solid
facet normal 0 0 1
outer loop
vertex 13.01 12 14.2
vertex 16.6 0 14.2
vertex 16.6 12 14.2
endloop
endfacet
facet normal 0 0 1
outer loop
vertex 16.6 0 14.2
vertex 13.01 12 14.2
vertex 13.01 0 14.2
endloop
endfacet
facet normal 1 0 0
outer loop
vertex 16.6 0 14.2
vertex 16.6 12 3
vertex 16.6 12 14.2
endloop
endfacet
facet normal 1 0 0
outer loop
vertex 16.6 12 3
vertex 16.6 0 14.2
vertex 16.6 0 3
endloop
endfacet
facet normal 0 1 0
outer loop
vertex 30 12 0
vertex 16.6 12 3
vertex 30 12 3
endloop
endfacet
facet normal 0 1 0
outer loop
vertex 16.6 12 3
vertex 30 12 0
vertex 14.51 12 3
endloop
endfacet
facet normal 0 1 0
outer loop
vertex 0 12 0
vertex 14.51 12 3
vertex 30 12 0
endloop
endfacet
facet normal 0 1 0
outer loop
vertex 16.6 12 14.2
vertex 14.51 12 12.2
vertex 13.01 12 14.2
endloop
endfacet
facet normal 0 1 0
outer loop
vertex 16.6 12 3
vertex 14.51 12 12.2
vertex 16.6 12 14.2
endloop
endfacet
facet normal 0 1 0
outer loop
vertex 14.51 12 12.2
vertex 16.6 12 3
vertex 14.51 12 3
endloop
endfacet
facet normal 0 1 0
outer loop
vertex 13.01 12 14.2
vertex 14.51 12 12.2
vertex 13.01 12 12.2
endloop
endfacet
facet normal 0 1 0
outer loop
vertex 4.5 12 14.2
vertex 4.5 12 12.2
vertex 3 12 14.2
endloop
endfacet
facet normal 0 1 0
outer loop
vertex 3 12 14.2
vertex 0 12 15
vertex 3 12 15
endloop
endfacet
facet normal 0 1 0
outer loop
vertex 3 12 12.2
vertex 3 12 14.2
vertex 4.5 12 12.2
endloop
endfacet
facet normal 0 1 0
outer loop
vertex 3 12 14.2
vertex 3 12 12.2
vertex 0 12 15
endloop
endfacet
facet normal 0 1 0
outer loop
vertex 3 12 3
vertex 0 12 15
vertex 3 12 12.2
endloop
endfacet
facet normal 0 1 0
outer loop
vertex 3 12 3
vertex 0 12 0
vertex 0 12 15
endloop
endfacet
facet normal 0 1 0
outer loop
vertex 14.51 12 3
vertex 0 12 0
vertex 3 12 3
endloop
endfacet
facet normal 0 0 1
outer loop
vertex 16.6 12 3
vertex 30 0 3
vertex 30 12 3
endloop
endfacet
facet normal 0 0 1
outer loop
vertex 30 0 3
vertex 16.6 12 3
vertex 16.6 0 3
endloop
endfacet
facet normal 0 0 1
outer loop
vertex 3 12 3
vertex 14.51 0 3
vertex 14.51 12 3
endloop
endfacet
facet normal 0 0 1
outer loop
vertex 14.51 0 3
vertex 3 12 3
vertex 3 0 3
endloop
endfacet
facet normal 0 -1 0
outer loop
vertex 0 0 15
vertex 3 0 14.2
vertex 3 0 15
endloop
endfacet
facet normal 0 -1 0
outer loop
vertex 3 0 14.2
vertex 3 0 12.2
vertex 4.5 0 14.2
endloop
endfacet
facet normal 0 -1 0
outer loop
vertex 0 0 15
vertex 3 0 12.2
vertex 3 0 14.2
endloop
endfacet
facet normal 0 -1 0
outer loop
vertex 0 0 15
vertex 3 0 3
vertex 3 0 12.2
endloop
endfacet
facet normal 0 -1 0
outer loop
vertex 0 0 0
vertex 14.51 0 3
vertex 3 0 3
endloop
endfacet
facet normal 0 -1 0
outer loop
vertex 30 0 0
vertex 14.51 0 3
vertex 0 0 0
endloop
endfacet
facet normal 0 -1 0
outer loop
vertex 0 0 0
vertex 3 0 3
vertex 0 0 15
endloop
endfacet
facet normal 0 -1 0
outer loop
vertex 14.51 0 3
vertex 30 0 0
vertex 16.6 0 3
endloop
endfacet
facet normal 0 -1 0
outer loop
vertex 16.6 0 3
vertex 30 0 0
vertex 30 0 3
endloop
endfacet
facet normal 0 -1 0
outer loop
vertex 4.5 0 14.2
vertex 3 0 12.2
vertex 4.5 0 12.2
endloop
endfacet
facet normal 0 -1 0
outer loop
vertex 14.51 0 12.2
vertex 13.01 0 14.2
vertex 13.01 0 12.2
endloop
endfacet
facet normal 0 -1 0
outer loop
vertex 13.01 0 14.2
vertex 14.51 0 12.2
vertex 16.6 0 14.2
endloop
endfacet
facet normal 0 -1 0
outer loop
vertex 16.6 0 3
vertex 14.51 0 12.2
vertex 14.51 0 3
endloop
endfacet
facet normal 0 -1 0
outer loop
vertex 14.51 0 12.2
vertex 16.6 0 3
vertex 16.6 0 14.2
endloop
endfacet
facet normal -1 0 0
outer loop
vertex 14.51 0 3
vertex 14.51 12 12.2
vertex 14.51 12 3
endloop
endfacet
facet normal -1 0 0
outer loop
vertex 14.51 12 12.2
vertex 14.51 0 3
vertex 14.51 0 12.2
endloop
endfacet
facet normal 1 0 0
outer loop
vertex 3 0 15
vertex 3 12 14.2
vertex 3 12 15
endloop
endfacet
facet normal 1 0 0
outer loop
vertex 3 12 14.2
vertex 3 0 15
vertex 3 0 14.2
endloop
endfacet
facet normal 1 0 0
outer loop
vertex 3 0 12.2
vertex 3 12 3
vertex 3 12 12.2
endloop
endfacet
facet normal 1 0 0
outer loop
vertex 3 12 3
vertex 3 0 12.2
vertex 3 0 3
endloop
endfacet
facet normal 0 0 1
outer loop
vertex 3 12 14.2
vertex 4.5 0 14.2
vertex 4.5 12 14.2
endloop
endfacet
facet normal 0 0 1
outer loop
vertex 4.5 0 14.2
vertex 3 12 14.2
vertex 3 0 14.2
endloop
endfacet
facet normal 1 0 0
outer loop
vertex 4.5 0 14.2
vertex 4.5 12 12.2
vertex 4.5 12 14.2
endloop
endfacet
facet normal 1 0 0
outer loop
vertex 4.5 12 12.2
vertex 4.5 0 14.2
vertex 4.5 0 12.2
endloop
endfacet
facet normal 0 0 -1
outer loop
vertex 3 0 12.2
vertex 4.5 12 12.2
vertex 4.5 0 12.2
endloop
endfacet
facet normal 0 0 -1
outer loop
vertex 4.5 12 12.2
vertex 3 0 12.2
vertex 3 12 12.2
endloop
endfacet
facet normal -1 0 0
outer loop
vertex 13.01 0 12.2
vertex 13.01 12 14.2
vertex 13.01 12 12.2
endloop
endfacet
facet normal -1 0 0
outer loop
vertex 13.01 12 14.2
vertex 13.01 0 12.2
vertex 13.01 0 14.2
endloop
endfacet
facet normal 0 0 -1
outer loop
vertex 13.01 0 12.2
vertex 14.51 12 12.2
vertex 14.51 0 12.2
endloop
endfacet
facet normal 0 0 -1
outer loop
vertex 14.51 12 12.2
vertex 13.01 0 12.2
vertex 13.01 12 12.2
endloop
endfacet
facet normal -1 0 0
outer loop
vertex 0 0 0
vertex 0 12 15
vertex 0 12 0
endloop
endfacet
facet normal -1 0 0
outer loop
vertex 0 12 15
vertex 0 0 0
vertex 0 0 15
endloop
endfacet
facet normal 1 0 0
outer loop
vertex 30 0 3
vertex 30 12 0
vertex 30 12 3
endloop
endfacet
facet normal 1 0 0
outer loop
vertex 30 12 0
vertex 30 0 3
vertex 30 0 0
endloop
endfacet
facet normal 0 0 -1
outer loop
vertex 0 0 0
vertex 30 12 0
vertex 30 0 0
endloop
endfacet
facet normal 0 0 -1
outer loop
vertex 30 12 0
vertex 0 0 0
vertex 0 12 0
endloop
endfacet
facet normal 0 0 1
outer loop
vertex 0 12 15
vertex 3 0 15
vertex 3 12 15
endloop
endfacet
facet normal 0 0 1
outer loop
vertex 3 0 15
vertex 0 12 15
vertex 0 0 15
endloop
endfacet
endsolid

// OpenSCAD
// Generated by SolidPython 1.1.3 on 2022-09-14 23:36:04
$fn = 64;


union() {
	cube(size = [30.0000000000, 12.0000000000, 3.0000000000]);
	cube(size = [3.0000000000, 12.0000000000, 15.0000000000]);
	translate(v = [3.0000000000, 0.0000000000, 3.0000000000]) {
		union() {
			difference() {
				cube(size = [13.6000000000, 12.0000000000, 11.2000000000]);
				translate(v = [-0.0100000000, -0.0100000000, -0.0100000000]) {
					cube(size = [11.5200000000, 12.0200000000, 11.2200000000]);
				}
			}
			translate(v = [0, 0, 9.2000000000]) {
				cube(size = [1.5000000000, 12.0000000000, 2.0000000000]);
			}
			translate(v = [10.0100000000, 0, 9.2000000000]) {
				cube(size = [1.5000000000, 12.0000000000, 2.0000000000]);
			}
		}
	}
}
/***********************************************
*********      SolidPython code:      **********
************************************************
 
from solid import *
from solid.utils import *
from math import *

# Constants
cm = 10
z = 0.01  # Fix z-fighting
z2 = 2*z
fn = 64  # Circle details

# Physical measurements

# Side (x/y)
# +--center_width--+--roof_support_margin_x--x
# |
# wall_support_margin_z
# |
# z
center_width = 1.5*cm
roof_support_margin_x = 1.5*cm
wall_support_margin_z = 1.5*cm

# Front (z/y)
# +--support_margin_y--+--center_depth--+--support_margin_y--y
#                               |
#                      wall_support_margin_z
#                               |
#                               z
center_depth = 1.2*cm
support_margin_y = 1.5*cm * 0

width = center_width + roof_support_margin_x
depth = support_margin_y + center_depth + support_margin_y
height = wall_support_margin_z
m = 0.3*cm

# Light strip
ls_width = 1.15*cm
ls_depth = center_depth
ls_height = 0.92*cm
ls_indent_width = 0.15*cm
ls_indent_height = 0.2*cm


def generate_light_strip_holder():
    holder = cube([ls_width + m*0.7, ls_depth, ls_height + ls_indent_height])
    cutout = cube([ls_width + z2, ls_depth + z2,
                  ls_height + ls_indent_height + z2])
    cutout = translate([-z, -z, -z])(cutout)
    indent = cube([ls_indent_width, ls_depth, ls_indent_height])
    inner_indent = translate([0, 0, ls_height])(indent)
    outer_indent = translate(
        [ls_width - ls_indent_width + z, 0, ls_height])(indent)
    return holder - cutout + inner_indent + outer_indent


def generate_model():
    roof = cube([width, depth, m])
    wall = cube([m, depth, height])
    holder = generate_light_strip_holder()
    holder = translate([m, depth / 2 - ls_depth / 2, m])(holder)
    return roof + wall + holder


model = generate_model()

scad_render_to_file(model, "light-strip-attachment.scad",
                    file_header=f"$fn = {fn};")
 
 
************************************************/
